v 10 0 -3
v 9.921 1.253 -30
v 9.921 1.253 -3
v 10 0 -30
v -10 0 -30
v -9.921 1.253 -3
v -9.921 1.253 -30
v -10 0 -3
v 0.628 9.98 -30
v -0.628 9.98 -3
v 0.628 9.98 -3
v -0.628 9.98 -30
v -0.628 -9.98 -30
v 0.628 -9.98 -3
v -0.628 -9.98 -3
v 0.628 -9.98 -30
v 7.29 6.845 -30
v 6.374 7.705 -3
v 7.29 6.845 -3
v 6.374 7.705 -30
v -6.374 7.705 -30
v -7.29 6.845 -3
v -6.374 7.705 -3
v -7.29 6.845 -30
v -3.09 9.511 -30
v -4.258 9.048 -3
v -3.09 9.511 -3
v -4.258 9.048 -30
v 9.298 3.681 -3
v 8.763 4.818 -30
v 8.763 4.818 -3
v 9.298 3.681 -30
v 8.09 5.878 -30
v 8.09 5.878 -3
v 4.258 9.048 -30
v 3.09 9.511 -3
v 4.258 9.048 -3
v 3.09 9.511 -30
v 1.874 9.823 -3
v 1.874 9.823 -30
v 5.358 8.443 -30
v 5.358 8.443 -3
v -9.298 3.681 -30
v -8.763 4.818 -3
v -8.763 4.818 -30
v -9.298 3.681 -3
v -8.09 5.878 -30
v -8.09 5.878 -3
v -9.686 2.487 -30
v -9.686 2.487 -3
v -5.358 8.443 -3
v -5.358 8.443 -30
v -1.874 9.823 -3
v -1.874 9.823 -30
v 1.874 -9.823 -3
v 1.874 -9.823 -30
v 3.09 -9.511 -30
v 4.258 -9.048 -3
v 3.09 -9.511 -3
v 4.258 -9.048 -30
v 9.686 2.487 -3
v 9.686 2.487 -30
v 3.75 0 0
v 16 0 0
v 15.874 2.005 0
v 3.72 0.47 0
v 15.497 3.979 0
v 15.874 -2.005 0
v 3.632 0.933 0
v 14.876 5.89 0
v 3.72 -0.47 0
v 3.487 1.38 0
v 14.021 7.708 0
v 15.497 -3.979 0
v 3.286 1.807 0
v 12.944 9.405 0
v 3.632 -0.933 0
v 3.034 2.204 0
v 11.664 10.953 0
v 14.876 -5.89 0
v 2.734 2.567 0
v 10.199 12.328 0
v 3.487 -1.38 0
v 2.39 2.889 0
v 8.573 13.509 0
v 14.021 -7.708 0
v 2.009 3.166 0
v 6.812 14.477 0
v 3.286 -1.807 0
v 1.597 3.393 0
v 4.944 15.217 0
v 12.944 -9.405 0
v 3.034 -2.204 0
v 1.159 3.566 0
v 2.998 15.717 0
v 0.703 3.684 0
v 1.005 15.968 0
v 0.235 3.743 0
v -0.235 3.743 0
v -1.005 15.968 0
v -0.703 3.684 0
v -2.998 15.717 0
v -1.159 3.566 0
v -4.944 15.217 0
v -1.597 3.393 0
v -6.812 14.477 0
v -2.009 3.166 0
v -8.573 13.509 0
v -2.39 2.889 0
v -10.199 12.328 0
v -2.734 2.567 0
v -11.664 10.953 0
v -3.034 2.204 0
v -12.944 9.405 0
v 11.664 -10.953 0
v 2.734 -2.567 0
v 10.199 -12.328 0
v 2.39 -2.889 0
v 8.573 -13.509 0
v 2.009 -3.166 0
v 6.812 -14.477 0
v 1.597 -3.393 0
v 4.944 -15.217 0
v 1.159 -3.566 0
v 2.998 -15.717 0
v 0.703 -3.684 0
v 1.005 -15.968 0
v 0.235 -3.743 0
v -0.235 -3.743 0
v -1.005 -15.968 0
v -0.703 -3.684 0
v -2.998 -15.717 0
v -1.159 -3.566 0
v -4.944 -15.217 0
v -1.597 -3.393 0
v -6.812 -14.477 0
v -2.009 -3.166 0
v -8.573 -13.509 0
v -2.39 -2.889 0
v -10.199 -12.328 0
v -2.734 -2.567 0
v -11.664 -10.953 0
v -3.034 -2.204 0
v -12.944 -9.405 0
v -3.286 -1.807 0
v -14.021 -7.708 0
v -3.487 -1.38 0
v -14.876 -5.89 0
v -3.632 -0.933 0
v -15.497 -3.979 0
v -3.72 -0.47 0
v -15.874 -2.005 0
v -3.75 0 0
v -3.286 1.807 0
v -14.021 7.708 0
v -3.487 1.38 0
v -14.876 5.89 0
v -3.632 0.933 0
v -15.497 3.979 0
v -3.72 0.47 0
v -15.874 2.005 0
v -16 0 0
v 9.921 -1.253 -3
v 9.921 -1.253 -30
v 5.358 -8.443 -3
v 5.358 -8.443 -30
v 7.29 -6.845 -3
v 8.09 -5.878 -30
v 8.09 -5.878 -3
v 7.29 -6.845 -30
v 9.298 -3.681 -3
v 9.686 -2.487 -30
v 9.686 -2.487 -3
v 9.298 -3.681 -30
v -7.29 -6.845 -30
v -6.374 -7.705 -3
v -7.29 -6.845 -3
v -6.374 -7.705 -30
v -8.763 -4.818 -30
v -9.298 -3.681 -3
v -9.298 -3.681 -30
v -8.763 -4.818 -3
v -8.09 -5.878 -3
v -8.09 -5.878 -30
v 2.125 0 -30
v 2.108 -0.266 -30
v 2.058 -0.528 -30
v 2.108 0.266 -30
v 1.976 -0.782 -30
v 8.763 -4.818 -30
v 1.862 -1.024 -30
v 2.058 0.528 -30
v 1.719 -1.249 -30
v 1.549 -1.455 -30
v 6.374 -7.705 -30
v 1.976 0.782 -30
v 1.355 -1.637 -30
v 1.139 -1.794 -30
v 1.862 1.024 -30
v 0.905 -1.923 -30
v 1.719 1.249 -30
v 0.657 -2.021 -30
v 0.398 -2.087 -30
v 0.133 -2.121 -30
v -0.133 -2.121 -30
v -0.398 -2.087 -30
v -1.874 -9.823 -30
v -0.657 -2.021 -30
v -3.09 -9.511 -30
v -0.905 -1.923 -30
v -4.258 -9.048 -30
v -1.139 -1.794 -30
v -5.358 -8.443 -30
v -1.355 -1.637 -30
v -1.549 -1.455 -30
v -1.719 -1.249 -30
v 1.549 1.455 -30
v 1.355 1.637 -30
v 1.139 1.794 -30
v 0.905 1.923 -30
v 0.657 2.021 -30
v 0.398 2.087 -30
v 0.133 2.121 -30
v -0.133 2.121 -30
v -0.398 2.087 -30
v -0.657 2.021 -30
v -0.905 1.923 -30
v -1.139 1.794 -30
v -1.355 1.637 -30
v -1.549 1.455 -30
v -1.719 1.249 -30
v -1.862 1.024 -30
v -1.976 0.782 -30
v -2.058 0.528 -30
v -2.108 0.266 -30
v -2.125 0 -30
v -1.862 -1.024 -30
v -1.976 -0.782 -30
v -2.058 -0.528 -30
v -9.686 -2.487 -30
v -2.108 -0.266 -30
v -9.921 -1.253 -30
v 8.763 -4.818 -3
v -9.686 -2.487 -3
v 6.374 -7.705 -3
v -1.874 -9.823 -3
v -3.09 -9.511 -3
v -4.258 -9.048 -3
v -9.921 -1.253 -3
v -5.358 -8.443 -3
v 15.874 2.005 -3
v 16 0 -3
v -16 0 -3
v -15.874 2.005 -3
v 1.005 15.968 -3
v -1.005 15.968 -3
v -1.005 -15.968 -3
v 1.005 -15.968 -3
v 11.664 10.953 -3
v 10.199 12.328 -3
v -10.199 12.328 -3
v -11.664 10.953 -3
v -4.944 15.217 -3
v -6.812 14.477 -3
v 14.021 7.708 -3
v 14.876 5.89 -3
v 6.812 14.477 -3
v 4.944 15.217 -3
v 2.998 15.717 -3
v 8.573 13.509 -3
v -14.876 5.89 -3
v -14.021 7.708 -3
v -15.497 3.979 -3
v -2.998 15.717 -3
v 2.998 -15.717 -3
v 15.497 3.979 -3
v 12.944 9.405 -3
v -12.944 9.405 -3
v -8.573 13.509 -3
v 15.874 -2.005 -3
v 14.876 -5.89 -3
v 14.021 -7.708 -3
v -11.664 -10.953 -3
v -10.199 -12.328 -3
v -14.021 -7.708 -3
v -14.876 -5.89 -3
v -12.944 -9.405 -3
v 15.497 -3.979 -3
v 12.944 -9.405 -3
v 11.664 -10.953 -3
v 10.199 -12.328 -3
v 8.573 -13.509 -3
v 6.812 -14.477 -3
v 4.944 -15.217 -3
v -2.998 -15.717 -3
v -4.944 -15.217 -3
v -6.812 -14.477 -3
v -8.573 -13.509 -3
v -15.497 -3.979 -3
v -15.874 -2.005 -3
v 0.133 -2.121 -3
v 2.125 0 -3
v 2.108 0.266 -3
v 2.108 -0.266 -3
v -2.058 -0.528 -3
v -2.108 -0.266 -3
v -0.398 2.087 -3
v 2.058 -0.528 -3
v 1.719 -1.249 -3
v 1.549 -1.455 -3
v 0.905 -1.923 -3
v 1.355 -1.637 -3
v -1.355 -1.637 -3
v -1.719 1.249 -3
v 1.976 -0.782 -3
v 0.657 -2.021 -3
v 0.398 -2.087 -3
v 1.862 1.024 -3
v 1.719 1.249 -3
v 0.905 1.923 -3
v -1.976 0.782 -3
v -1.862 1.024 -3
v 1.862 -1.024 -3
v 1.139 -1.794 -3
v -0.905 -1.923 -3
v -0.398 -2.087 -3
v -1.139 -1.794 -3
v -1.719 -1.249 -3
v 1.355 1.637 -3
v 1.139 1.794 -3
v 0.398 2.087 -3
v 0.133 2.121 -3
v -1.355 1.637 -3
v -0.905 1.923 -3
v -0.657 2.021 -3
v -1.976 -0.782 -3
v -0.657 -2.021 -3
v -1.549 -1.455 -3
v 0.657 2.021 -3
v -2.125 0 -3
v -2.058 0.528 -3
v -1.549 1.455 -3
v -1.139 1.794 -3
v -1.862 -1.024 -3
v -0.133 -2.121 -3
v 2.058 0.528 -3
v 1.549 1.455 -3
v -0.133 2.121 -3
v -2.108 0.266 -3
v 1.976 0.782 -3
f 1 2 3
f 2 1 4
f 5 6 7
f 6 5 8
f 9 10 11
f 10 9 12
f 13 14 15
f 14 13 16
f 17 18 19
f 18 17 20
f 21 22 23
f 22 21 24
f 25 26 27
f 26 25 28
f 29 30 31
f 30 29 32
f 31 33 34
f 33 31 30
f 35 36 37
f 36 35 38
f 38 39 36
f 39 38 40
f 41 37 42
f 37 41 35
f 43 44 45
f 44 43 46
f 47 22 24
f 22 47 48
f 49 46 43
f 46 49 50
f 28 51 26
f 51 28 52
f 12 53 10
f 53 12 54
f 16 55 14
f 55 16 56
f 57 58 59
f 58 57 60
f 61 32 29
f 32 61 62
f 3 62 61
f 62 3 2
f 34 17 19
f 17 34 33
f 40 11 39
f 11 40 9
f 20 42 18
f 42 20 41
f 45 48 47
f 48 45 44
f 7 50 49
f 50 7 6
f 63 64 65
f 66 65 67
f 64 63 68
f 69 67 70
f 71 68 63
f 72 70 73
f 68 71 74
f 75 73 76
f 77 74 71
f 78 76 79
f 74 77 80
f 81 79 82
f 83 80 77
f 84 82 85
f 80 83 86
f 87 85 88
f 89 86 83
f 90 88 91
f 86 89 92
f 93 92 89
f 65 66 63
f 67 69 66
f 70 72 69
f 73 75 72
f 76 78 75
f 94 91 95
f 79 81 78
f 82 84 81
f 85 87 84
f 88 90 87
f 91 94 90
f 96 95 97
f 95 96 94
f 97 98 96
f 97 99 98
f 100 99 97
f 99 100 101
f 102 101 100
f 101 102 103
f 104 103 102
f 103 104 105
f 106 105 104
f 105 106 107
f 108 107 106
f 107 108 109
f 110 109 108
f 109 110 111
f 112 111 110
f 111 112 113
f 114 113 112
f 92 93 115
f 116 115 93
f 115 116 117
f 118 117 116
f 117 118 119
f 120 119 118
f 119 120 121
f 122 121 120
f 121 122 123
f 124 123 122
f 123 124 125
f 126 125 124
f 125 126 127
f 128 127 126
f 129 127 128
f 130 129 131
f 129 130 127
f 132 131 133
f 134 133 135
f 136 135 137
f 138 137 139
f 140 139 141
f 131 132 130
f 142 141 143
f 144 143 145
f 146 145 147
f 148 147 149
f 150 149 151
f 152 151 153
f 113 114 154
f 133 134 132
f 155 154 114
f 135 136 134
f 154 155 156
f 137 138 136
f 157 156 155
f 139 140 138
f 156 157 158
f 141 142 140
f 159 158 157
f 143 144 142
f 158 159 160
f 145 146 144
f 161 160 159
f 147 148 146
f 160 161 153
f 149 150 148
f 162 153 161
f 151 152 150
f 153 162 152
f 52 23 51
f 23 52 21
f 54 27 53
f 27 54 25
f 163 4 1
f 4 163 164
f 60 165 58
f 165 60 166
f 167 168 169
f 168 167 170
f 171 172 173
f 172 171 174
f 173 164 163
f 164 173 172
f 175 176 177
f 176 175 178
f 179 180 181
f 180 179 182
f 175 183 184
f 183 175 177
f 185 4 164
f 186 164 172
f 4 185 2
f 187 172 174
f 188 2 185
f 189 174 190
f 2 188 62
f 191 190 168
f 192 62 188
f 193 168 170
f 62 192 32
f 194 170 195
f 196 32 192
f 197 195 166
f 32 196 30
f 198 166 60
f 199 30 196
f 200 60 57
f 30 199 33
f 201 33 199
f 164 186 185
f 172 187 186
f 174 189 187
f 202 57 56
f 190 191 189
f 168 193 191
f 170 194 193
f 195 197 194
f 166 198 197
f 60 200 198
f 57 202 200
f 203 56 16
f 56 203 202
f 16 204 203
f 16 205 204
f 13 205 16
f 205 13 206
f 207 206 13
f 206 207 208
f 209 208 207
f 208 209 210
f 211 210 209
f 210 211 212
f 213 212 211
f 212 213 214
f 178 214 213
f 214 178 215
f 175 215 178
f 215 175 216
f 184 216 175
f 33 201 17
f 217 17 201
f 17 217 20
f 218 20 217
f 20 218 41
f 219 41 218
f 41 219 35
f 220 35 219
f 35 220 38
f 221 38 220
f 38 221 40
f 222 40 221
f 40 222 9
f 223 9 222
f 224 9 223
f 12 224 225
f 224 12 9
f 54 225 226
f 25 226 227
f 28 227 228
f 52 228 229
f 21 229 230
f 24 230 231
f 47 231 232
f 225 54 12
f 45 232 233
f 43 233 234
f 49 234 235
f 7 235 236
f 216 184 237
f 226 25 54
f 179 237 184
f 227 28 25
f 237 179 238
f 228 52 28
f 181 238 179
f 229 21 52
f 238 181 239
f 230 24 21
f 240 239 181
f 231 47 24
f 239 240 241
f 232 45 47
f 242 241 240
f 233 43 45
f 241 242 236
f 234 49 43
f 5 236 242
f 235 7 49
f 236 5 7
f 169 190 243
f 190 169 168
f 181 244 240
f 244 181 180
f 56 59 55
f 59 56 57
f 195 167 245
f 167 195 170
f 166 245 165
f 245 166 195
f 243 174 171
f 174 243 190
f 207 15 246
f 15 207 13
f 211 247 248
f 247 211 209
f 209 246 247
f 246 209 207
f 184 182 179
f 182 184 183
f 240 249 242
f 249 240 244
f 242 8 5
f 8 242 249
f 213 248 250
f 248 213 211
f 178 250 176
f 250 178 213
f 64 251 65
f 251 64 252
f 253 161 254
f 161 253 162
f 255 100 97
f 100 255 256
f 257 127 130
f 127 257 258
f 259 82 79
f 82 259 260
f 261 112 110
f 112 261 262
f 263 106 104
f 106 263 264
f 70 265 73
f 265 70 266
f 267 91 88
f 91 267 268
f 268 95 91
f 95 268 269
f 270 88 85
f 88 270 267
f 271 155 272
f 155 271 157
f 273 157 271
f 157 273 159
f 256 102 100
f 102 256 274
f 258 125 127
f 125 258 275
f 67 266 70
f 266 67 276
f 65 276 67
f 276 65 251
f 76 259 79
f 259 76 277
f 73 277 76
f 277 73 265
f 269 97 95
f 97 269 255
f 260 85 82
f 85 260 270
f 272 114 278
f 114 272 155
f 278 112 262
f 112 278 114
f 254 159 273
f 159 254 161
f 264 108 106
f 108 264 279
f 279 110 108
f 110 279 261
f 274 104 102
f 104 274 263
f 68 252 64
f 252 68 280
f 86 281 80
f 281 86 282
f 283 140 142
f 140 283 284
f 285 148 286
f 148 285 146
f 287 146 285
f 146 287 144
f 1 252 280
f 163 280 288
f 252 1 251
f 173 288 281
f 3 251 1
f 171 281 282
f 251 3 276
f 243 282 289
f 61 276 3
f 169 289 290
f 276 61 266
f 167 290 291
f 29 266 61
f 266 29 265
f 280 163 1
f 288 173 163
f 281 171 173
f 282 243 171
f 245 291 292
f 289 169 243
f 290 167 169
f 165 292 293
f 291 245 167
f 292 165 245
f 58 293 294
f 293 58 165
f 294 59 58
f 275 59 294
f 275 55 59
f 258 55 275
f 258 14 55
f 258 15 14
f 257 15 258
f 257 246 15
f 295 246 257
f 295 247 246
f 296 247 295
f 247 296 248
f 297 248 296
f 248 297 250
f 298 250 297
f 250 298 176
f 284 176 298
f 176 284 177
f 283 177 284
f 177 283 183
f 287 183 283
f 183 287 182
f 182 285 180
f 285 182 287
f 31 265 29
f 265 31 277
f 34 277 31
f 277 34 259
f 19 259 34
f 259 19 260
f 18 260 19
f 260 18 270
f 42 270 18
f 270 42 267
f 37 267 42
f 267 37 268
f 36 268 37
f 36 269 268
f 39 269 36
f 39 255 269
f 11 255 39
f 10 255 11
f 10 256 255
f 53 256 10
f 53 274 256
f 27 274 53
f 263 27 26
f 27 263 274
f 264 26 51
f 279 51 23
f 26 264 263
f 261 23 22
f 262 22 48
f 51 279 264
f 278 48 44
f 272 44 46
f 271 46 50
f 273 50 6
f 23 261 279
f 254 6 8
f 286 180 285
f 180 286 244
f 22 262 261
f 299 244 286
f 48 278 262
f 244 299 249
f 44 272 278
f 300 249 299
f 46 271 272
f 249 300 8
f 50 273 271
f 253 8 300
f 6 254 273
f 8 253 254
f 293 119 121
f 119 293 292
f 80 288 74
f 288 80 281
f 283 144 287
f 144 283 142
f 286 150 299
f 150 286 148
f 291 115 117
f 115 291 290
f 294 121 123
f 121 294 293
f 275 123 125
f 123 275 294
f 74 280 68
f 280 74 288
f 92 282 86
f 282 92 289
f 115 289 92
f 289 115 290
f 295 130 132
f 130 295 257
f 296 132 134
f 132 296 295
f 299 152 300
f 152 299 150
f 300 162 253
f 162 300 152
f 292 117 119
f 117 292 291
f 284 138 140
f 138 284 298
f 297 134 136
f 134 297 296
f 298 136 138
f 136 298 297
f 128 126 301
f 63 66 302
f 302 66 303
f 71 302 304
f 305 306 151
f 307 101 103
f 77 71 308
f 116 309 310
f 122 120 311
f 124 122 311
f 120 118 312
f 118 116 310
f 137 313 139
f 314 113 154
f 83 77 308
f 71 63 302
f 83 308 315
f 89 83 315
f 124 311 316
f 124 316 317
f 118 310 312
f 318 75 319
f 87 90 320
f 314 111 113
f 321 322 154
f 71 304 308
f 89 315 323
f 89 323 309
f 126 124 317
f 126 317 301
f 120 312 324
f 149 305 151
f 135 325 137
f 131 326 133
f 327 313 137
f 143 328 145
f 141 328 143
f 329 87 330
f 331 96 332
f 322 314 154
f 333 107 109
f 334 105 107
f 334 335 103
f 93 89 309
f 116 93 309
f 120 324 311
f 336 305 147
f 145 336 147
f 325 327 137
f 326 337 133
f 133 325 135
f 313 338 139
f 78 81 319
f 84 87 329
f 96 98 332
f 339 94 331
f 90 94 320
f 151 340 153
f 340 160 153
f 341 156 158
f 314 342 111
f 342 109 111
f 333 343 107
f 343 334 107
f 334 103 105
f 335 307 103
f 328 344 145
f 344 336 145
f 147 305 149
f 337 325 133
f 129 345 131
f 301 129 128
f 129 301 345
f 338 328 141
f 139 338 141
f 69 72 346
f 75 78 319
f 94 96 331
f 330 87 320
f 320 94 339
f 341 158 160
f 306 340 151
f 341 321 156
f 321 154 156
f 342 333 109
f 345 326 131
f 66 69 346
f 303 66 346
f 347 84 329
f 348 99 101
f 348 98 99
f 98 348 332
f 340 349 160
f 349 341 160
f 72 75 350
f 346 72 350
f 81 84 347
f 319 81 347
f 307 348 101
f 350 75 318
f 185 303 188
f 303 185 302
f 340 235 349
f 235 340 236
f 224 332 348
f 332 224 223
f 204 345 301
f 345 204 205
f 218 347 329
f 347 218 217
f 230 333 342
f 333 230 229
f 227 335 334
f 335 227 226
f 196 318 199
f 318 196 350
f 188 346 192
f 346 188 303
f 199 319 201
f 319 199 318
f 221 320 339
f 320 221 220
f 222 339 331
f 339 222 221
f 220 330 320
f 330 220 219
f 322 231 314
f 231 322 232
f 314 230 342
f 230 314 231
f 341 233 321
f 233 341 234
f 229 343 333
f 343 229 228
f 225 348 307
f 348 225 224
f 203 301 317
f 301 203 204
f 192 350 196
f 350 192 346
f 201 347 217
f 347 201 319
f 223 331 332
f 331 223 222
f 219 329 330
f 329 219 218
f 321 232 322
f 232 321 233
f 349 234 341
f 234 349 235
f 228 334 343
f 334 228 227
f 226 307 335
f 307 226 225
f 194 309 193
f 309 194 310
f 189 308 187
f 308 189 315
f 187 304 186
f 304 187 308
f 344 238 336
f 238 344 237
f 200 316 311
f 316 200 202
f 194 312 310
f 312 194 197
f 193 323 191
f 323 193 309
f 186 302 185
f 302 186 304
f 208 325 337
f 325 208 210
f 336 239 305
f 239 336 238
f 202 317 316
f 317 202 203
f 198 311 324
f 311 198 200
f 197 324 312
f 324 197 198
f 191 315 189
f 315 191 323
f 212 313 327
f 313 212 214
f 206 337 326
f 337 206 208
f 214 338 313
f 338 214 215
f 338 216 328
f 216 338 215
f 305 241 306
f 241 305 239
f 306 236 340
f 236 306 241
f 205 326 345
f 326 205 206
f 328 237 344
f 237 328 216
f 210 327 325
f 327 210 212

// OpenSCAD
$fn = 50;


difference() {
	union() {
		translate(v = [0, 0, -30.0000000000]) {
			cylinder(h = 30, r = 10.0000000000);
		}
		translate(v = [0, 0, -3.0000000000]) {
			cylinder(h = 3, r = 16.0000000000);
		}
	}
	union() {
		translate(v = [0, 0, 0]) {
			rotate(a = [0, 0, 0]) {
				difference() {
					union() {
						#translate(v = [0, 0, -30.0000000000]) {
							cylinder(h = 30, r = 2.0000000000);
						}
						#translate(v = [0, 0, -3]) {
							cylinder(h = 3, r = 10.0000000000, r1 = 2.1250000000, r2 = 3.7500000000);
						}
						#translate(v = [0, 0, -30.0000000000]) {
							cylinder(h = 30, r = 2.1250000000);
						}
						#translate(v = [0, 0, -30.0000000000]) {
							cylinder(h = 30, r = 2.0000000000);
						}
					}
					union();
				}
			}
		}
	}
}
